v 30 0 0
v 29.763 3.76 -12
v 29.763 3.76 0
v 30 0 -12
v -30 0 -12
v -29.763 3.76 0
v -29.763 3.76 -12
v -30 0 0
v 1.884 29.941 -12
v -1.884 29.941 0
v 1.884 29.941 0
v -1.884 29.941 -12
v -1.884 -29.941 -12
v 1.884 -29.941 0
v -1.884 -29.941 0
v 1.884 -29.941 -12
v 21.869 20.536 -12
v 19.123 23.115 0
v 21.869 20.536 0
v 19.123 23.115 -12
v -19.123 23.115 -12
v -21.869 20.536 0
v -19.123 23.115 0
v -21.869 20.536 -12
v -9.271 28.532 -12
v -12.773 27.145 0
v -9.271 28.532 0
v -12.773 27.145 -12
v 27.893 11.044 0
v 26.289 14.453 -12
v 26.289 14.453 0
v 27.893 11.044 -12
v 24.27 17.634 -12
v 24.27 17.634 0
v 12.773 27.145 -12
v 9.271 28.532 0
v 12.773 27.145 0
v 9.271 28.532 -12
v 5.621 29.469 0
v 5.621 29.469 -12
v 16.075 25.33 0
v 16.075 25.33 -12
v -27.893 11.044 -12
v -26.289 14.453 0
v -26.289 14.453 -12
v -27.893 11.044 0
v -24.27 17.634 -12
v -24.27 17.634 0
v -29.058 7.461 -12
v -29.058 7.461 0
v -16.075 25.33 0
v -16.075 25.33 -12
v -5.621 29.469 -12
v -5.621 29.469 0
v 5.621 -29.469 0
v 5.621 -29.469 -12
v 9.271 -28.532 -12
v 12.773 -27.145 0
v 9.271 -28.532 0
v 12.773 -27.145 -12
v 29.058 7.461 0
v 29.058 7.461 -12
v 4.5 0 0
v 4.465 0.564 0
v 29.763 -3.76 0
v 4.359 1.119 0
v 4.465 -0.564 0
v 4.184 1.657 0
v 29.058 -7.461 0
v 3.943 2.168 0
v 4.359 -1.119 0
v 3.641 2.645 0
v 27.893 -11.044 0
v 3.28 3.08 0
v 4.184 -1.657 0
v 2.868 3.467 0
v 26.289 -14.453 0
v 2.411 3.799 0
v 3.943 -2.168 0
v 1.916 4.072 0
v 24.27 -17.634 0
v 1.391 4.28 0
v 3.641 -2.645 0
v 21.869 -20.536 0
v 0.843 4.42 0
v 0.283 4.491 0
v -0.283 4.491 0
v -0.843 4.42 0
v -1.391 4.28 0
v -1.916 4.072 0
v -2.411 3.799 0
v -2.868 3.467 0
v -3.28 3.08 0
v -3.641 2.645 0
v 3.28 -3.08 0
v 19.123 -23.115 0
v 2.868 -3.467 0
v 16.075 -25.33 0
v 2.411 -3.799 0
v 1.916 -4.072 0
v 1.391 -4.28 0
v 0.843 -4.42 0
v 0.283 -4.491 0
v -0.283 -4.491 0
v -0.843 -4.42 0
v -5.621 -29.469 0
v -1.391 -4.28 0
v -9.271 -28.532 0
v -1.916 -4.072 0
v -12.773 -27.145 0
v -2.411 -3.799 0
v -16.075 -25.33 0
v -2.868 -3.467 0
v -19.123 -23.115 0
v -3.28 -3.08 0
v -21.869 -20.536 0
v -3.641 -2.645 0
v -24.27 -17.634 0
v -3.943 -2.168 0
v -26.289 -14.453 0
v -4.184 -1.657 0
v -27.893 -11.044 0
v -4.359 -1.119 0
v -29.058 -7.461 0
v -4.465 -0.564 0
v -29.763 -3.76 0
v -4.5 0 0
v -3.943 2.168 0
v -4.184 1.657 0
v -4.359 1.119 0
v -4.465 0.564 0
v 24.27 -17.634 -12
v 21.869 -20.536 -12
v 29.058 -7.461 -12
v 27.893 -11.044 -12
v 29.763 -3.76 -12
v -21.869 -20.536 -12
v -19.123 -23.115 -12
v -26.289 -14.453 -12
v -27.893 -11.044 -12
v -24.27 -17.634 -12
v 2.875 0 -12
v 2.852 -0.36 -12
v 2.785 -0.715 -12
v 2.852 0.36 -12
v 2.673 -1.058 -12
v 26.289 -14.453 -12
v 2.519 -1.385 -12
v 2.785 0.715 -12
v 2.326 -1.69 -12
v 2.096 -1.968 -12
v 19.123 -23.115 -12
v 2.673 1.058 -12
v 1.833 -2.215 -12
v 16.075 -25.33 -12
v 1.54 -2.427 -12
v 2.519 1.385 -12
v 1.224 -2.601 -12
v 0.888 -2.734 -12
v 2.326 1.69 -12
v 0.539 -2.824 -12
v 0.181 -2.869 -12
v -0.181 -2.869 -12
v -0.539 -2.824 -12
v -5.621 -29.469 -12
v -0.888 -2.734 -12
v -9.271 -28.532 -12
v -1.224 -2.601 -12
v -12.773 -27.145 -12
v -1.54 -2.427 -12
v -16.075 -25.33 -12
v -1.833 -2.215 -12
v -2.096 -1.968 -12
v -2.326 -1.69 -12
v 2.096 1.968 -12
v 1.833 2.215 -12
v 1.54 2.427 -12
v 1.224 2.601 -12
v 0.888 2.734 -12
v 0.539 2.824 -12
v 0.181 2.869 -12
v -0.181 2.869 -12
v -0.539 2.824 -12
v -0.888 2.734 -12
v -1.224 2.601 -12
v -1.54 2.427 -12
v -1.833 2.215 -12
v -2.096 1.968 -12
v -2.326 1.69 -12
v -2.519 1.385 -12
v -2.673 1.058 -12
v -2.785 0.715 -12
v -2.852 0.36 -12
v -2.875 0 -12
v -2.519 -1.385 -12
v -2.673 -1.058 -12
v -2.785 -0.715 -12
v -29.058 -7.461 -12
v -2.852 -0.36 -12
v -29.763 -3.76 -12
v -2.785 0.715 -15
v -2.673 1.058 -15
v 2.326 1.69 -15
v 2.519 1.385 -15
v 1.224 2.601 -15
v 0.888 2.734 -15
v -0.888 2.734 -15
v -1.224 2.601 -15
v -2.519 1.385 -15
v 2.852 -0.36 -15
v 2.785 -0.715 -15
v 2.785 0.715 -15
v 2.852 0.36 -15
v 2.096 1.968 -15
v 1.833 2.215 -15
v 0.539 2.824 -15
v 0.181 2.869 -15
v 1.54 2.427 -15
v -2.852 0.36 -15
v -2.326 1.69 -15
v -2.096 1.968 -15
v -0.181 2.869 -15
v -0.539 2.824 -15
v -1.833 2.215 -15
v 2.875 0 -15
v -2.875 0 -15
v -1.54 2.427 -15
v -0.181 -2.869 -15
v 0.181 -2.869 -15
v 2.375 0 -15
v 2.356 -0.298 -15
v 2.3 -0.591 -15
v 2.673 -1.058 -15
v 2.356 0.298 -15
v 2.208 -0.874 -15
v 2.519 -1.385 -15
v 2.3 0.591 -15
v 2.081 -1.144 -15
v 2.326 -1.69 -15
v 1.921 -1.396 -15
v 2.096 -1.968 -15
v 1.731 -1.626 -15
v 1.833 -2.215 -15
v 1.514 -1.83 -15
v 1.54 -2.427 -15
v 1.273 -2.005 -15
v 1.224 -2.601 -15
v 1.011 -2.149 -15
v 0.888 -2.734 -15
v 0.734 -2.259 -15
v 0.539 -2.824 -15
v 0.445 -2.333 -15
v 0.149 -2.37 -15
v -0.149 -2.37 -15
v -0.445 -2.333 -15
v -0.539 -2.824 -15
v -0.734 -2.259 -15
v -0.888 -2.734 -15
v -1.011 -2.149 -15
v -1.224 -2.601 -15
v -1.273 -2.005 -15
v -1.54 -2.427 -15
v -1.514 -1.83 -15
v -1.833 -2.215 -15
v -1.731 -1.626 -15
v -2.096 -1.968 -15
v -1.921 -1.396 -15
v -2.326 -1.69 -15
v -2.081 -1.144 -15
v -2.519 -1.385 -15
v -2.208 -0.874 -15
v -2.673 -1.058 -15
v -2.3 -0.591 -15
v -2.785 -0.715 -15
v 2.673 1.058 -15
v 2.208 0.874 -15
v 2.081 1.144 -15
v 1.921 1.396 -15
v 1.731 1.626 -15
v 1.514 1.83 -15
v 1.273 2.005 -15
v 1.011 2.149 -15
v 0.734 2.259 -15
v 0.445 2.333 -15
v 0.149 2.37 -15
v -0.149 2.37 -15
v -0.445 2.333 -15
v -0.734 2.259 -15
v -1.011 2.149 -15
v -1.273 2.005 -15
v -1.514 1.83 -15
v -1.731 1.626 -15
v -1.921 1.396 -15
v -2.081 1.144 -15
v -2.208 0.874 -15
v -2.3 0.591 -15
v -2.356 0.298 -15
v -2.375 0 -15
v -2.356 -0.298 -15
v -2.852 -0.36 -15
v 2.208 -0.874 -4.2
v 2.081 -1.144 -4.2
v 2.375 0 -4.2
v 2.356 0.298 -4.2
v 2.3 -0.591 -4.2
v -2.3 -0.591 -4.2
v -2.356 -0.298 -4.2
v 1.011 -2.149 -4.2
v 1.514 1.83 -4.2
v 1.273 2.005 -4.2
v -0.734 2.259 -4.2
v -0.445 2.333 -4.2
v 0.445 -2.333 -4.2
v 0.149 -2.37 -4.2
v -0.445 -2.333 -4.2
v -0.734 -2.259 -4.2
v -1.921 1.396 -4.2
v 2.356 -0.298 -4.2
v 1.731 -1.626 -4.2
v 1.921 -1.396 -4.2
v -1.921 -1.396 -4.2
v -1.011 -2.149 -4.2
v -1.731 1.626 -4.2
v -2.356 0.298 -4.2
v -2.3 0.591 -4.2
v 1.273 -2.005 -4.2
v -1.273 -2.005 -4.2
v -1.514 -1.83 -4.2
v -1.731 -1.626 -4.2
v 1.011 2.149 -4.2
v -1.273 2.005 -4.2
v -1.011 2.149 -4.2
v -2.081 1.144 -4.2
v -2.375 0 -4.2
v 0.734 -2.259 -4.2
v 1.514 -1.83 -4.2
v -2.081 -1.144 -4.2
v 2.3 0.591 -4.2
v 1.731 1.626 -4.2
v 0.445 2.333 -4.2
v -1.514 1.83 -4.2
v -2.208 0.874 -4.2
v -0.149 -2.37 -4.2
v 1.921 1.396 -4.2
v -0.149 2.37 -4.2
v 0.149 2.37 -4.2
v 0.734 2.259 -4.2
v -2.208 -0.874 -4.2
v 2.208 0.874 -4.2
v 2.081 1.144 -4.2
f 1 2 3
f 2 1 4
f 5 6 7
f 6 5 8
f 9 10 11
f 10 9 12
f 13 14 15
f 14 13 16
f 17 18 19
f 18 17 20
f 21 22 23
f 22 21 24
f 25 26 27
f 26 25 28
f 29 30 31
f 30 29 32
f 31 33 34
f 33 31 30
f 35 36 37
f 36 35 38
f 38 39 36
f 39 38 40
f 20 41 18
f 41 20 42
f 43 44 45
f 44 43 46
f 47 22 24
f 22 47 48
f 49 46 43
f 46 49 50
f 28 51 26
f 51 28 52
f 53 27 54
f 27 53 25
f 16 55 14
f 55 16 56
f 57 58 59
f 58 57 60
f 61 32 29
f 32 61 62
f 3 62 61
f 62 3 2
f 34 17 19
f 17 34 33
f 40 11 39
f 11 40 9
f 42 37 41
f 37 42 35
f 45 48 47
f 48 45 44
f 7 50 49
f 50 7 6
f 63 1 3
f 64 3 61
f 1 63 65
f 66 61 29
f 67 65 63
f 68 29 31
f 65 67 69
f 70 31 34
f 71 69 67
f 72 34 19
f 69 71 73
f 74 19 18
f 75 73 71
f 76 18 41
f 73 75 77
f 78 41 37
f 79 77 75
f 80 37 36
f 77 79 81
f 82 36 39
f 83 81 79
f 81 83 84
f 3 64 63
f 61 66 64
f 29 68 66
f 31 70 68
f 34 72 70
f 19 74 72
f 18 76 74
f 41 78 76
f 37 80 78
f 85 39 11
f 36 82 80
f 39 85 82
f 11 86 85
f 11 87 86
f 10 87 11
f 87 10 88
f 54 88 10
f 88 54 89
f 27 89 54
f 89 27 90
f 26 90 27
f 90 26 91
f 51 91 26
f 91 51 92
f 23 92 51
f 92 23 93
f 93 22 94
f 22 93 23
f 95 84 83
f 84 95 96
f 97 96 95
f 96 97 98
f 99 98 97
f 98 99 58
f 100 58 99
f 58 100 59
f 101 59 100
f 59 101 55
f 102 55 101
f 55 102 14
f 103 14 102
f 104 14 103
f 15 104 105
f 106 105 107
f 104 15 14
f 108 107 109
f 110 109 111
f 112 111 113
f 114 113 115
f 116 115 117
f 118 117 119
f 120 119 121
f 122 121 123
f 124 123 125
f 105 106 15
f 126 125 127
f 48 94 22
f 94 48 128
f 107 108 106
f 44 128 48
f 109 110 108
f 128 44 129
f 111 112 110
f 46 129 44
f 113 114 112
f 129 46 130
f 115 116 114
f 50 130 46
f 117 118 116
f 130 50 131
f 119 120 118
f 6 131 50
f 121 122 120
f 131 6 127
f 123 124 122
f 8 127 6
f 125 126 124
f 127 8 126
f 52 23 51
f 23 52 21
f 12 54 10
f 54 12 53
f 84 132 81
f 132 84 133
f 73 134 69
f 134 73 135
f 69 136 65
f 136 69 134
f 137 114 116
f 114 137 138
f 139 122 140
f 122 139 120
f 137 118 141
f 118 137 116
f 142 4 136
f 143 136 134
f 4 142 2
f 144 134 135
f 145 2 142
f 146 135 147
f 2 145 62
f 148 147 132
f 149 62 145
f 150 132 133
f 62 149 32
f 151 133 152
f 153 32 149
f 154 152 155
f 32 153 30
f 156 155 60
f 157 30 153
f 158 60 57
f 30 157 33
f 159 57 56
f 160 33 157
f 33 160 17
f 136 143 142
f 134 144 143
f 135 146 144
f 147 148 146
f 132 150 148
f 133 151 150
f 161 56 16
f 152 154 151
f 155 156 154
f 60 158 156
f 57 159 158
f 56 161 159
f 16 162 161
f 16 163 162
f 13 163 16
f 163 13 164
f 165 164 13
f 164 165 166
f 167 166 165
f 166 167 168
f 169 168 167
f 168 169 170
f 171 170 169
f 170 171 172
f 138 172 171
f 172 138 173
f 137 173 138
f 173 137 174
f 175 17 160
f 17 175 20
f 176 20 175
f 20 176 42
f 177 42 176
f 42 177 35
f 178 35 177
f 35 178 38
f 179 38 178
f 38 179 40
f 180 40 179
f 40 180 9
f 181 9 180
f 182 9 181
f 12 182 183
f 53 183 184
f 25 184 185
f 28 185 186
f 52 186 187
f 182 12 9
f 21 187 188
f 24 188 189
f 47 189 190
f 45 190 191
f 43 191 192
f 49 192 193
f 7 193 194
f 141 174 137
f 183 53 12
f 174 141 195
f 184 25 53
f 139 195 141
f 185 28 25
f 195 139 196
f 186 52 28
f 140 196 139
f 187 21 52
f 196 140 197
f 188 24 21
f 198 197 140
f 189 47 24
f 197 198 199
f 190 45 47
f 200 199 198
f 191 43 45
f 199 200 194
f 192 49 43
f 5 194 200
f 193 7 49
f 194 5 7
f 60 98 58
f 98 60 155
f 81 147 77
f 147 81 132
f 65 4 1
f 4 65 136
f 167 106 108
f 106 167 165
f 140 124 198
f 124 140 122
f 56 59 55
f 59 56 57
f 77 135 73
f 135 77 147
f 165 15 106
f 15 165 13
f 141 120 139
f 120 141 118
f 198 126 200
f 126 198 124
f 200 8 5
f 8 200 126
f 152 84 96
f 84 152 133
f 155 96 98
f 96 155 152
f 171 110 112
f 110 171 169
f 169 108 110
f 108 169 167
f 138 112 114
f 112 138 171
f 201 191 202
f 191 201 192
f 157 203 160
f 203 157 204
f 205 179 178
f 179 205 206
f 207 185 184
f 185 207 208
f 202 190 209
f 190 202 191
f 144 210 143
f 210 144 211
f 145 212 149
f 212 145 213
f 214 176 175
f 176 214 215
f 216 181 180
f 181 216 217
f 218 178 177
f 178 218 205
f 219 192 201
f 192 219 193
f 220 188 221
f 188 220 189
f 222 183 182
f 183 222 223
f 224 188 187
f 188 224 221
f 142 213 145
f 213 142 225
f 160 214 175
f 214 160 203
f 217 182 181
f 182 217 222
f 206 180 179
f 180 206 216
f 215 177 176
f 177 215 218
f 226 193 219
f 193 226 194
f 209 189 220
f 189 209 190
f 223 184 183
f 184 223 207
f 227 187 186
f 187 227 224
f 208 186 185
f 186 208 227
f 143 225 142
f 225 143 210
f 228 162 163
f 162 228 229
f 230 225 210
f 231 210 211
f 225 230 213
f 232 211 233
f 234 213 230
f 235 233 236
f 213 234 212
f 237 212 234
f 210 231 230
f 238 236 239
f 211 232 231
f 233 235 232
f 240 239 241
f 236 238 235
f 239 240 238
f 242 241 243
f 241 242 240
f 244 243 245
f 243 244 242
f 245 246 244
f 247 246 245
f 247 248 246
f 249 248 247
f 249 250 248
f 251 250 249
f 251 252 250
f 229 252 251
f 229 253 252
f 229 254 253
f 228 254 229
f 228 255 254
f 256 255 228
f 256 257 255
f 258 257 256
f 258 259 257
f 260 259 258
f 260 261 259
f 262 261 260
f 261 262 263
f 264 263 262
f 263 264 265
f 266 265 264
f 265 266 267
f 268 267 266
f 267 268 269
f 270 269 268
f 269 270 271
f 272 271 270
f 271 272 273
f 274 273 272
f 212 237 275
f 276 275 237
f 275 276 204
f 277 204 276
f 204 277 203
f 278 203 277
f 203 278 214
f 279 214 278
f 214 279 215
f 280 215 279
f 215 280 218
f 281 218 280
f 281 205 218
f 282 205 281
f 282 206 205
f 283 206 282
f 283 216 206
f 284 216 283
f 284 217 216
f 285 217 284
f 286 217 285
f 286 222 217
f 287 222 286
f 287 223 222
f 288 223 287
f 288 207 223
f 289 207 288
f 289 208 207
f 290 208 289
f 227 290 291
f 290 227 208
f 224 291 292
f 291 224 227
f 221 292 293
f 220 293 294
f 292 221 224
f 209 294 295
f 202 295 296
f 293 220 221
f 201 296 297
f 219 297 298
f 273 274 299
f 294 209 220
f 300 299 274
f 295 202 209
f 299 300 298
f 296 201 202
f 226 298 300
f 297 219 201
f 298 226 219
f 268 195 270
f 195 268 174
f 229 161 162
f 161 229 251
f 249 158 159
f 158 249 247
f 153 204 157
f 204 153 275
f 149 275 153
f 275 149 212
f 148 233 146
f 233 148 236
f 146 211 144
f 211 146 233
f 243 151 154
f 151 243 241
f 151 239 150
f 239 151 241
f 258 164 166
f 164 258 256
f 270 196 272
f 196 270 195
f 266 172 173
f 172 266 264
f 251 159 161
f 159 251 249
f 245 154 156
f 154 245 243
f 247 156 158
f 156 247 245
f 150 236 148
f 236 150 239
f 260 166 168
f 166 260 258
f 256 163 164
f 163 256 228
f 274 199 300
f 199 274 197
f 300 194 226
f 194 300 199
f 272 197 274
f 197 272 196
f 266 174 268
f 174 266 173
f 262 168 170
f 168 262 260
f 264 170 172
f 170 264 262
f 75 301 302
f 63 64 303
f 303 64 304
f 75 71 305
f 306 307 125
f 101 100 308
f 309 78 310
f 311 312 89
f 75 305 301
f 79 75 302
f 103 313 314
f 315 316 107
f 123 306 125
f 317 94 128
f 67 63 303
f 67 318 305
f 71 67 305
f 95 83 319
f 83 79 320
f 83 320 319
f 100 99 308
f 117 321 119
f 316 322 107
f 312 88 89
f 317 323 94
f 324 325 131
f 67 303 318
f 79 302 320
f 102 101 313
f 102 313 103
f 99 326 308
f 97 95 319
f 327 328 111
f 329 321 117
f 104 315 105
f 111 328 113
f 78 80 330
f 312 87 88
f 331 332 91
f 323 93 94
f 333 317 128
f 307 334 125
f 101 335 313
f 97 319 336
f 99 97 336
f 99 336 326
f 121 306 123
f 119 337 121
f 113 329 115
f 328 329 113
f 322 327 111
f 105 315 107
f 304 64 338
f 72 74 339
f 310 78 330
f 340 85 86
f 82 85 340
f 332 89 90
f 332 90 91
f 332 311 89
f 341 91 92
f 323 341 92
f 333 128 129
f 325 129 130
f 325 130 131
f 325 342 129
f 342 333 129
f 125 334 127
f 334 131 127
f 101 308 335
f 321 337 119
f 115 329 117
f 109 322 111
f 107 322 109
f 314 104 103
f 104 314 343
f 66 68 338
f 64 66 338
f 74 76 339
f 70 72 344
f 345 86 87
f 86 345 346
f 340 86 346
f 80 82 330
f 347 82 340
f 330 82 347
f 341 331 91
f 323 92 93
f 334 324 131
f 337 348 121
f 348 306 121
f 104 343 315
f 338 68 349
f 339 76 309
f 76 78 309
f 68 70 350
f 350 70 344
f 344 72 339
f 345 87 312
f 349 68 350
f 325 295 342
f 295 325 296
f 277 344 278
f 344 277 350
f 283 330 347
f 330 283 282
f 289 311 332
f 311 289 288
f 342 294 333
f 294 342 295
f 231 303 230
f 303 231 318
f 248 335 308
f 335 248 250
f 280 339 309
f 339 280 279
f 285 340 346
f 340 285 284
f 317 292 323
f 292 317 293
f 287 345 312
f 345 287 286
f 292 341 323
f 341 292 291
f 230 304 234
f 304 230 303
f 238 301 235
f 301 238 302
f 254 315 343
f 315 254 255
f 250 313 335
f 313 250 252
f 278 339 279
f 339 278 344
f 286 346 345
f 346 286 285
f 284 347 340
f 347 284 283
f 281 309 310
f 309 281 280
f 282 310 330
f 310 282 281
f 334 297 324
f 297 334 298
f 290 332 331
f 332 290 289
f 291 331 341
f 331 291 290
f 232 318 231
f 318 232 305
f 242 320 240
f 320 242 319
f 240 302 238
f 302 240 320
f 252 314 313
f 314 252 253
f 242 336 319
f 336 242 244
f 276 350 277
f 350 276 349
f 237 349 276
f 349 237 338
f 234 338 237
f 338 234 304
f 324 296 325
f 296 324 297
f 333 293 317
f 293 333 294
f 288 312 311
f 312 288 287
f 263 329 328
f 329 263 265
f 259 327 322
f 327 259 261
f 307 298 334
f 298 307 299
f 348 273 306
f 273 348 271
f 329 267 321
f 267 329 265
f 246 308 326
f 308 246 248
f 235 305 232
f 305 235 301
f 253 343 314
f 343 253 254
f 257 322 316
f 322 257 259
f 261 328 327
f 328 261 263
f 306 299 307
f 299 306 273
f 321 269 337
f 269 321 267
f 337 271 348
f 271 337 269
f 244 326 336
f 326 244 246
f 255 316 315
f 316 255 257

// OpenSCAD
$fn = 50;


difference() {
	union() {
		translate(v = [0, 0, -12.0000000000]) {
			cylinder(h = 12, r = 30.0000000000);
		}
		translate(v = [0, 0, -15.0000000000]) {
			cylinder(h = 15, r = 2.8750000000);
		}
	}
	union() {
		translate(v = [0, 0, 0]) {
			rotate(a = [0, 0, 0]) {
				difference() {
					union() {
						translate(v = [0, 0, -15.0000000000]) {
							cylinder(h = 15, r = 2.2500000000);
						}
						translate(v = [0, 0, -4.2000000000]) {
							cylinder(h = 4.2000000000, r1 = 2.3750000000, r2 = 4.5000000000);
						}
						translate(v = [0, 0, -15.0000000000]) {
							cylinder(h = 15, r = 2.3750000000);
						}
						translate(v = [0, 0, -15.0000000000]) {
							cylinder(h = 15, r = 2.2500000000);
						}
					}
					union();
				}
			}
		}
	}
}
